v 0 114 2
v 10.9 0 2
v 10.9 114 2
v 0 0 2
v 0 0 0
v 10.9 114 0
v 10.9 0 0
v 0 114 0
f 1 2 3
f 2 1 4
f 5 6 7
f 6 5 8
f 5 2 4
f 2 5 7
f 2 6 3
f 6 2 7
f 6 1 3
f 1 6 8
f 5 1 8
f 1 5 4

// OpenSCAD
// A custom mesh facade for Dell Optiplex 9020
// Angled bracked part
//  By Carsten Thue-Bludworth
//  February, 2022

// CONFIGURATION CONSTANTS
$fn = 1;
$fa = 0.4;
// The overlap amount to help OpenSCAD form unions & differences
_DELTA = 0.01;

// These are the dimensions of the bracket
BASE_WIDTH        = 10.9;
BASE_HEIGHT       = 114;
WALL_THICKNESS    = 2;

// Creates the base solid for our facade
module base() {
    cube([BASE_WIDTH, BASE_HEIGHT, WALL_THICKNESS]);
}

base();
